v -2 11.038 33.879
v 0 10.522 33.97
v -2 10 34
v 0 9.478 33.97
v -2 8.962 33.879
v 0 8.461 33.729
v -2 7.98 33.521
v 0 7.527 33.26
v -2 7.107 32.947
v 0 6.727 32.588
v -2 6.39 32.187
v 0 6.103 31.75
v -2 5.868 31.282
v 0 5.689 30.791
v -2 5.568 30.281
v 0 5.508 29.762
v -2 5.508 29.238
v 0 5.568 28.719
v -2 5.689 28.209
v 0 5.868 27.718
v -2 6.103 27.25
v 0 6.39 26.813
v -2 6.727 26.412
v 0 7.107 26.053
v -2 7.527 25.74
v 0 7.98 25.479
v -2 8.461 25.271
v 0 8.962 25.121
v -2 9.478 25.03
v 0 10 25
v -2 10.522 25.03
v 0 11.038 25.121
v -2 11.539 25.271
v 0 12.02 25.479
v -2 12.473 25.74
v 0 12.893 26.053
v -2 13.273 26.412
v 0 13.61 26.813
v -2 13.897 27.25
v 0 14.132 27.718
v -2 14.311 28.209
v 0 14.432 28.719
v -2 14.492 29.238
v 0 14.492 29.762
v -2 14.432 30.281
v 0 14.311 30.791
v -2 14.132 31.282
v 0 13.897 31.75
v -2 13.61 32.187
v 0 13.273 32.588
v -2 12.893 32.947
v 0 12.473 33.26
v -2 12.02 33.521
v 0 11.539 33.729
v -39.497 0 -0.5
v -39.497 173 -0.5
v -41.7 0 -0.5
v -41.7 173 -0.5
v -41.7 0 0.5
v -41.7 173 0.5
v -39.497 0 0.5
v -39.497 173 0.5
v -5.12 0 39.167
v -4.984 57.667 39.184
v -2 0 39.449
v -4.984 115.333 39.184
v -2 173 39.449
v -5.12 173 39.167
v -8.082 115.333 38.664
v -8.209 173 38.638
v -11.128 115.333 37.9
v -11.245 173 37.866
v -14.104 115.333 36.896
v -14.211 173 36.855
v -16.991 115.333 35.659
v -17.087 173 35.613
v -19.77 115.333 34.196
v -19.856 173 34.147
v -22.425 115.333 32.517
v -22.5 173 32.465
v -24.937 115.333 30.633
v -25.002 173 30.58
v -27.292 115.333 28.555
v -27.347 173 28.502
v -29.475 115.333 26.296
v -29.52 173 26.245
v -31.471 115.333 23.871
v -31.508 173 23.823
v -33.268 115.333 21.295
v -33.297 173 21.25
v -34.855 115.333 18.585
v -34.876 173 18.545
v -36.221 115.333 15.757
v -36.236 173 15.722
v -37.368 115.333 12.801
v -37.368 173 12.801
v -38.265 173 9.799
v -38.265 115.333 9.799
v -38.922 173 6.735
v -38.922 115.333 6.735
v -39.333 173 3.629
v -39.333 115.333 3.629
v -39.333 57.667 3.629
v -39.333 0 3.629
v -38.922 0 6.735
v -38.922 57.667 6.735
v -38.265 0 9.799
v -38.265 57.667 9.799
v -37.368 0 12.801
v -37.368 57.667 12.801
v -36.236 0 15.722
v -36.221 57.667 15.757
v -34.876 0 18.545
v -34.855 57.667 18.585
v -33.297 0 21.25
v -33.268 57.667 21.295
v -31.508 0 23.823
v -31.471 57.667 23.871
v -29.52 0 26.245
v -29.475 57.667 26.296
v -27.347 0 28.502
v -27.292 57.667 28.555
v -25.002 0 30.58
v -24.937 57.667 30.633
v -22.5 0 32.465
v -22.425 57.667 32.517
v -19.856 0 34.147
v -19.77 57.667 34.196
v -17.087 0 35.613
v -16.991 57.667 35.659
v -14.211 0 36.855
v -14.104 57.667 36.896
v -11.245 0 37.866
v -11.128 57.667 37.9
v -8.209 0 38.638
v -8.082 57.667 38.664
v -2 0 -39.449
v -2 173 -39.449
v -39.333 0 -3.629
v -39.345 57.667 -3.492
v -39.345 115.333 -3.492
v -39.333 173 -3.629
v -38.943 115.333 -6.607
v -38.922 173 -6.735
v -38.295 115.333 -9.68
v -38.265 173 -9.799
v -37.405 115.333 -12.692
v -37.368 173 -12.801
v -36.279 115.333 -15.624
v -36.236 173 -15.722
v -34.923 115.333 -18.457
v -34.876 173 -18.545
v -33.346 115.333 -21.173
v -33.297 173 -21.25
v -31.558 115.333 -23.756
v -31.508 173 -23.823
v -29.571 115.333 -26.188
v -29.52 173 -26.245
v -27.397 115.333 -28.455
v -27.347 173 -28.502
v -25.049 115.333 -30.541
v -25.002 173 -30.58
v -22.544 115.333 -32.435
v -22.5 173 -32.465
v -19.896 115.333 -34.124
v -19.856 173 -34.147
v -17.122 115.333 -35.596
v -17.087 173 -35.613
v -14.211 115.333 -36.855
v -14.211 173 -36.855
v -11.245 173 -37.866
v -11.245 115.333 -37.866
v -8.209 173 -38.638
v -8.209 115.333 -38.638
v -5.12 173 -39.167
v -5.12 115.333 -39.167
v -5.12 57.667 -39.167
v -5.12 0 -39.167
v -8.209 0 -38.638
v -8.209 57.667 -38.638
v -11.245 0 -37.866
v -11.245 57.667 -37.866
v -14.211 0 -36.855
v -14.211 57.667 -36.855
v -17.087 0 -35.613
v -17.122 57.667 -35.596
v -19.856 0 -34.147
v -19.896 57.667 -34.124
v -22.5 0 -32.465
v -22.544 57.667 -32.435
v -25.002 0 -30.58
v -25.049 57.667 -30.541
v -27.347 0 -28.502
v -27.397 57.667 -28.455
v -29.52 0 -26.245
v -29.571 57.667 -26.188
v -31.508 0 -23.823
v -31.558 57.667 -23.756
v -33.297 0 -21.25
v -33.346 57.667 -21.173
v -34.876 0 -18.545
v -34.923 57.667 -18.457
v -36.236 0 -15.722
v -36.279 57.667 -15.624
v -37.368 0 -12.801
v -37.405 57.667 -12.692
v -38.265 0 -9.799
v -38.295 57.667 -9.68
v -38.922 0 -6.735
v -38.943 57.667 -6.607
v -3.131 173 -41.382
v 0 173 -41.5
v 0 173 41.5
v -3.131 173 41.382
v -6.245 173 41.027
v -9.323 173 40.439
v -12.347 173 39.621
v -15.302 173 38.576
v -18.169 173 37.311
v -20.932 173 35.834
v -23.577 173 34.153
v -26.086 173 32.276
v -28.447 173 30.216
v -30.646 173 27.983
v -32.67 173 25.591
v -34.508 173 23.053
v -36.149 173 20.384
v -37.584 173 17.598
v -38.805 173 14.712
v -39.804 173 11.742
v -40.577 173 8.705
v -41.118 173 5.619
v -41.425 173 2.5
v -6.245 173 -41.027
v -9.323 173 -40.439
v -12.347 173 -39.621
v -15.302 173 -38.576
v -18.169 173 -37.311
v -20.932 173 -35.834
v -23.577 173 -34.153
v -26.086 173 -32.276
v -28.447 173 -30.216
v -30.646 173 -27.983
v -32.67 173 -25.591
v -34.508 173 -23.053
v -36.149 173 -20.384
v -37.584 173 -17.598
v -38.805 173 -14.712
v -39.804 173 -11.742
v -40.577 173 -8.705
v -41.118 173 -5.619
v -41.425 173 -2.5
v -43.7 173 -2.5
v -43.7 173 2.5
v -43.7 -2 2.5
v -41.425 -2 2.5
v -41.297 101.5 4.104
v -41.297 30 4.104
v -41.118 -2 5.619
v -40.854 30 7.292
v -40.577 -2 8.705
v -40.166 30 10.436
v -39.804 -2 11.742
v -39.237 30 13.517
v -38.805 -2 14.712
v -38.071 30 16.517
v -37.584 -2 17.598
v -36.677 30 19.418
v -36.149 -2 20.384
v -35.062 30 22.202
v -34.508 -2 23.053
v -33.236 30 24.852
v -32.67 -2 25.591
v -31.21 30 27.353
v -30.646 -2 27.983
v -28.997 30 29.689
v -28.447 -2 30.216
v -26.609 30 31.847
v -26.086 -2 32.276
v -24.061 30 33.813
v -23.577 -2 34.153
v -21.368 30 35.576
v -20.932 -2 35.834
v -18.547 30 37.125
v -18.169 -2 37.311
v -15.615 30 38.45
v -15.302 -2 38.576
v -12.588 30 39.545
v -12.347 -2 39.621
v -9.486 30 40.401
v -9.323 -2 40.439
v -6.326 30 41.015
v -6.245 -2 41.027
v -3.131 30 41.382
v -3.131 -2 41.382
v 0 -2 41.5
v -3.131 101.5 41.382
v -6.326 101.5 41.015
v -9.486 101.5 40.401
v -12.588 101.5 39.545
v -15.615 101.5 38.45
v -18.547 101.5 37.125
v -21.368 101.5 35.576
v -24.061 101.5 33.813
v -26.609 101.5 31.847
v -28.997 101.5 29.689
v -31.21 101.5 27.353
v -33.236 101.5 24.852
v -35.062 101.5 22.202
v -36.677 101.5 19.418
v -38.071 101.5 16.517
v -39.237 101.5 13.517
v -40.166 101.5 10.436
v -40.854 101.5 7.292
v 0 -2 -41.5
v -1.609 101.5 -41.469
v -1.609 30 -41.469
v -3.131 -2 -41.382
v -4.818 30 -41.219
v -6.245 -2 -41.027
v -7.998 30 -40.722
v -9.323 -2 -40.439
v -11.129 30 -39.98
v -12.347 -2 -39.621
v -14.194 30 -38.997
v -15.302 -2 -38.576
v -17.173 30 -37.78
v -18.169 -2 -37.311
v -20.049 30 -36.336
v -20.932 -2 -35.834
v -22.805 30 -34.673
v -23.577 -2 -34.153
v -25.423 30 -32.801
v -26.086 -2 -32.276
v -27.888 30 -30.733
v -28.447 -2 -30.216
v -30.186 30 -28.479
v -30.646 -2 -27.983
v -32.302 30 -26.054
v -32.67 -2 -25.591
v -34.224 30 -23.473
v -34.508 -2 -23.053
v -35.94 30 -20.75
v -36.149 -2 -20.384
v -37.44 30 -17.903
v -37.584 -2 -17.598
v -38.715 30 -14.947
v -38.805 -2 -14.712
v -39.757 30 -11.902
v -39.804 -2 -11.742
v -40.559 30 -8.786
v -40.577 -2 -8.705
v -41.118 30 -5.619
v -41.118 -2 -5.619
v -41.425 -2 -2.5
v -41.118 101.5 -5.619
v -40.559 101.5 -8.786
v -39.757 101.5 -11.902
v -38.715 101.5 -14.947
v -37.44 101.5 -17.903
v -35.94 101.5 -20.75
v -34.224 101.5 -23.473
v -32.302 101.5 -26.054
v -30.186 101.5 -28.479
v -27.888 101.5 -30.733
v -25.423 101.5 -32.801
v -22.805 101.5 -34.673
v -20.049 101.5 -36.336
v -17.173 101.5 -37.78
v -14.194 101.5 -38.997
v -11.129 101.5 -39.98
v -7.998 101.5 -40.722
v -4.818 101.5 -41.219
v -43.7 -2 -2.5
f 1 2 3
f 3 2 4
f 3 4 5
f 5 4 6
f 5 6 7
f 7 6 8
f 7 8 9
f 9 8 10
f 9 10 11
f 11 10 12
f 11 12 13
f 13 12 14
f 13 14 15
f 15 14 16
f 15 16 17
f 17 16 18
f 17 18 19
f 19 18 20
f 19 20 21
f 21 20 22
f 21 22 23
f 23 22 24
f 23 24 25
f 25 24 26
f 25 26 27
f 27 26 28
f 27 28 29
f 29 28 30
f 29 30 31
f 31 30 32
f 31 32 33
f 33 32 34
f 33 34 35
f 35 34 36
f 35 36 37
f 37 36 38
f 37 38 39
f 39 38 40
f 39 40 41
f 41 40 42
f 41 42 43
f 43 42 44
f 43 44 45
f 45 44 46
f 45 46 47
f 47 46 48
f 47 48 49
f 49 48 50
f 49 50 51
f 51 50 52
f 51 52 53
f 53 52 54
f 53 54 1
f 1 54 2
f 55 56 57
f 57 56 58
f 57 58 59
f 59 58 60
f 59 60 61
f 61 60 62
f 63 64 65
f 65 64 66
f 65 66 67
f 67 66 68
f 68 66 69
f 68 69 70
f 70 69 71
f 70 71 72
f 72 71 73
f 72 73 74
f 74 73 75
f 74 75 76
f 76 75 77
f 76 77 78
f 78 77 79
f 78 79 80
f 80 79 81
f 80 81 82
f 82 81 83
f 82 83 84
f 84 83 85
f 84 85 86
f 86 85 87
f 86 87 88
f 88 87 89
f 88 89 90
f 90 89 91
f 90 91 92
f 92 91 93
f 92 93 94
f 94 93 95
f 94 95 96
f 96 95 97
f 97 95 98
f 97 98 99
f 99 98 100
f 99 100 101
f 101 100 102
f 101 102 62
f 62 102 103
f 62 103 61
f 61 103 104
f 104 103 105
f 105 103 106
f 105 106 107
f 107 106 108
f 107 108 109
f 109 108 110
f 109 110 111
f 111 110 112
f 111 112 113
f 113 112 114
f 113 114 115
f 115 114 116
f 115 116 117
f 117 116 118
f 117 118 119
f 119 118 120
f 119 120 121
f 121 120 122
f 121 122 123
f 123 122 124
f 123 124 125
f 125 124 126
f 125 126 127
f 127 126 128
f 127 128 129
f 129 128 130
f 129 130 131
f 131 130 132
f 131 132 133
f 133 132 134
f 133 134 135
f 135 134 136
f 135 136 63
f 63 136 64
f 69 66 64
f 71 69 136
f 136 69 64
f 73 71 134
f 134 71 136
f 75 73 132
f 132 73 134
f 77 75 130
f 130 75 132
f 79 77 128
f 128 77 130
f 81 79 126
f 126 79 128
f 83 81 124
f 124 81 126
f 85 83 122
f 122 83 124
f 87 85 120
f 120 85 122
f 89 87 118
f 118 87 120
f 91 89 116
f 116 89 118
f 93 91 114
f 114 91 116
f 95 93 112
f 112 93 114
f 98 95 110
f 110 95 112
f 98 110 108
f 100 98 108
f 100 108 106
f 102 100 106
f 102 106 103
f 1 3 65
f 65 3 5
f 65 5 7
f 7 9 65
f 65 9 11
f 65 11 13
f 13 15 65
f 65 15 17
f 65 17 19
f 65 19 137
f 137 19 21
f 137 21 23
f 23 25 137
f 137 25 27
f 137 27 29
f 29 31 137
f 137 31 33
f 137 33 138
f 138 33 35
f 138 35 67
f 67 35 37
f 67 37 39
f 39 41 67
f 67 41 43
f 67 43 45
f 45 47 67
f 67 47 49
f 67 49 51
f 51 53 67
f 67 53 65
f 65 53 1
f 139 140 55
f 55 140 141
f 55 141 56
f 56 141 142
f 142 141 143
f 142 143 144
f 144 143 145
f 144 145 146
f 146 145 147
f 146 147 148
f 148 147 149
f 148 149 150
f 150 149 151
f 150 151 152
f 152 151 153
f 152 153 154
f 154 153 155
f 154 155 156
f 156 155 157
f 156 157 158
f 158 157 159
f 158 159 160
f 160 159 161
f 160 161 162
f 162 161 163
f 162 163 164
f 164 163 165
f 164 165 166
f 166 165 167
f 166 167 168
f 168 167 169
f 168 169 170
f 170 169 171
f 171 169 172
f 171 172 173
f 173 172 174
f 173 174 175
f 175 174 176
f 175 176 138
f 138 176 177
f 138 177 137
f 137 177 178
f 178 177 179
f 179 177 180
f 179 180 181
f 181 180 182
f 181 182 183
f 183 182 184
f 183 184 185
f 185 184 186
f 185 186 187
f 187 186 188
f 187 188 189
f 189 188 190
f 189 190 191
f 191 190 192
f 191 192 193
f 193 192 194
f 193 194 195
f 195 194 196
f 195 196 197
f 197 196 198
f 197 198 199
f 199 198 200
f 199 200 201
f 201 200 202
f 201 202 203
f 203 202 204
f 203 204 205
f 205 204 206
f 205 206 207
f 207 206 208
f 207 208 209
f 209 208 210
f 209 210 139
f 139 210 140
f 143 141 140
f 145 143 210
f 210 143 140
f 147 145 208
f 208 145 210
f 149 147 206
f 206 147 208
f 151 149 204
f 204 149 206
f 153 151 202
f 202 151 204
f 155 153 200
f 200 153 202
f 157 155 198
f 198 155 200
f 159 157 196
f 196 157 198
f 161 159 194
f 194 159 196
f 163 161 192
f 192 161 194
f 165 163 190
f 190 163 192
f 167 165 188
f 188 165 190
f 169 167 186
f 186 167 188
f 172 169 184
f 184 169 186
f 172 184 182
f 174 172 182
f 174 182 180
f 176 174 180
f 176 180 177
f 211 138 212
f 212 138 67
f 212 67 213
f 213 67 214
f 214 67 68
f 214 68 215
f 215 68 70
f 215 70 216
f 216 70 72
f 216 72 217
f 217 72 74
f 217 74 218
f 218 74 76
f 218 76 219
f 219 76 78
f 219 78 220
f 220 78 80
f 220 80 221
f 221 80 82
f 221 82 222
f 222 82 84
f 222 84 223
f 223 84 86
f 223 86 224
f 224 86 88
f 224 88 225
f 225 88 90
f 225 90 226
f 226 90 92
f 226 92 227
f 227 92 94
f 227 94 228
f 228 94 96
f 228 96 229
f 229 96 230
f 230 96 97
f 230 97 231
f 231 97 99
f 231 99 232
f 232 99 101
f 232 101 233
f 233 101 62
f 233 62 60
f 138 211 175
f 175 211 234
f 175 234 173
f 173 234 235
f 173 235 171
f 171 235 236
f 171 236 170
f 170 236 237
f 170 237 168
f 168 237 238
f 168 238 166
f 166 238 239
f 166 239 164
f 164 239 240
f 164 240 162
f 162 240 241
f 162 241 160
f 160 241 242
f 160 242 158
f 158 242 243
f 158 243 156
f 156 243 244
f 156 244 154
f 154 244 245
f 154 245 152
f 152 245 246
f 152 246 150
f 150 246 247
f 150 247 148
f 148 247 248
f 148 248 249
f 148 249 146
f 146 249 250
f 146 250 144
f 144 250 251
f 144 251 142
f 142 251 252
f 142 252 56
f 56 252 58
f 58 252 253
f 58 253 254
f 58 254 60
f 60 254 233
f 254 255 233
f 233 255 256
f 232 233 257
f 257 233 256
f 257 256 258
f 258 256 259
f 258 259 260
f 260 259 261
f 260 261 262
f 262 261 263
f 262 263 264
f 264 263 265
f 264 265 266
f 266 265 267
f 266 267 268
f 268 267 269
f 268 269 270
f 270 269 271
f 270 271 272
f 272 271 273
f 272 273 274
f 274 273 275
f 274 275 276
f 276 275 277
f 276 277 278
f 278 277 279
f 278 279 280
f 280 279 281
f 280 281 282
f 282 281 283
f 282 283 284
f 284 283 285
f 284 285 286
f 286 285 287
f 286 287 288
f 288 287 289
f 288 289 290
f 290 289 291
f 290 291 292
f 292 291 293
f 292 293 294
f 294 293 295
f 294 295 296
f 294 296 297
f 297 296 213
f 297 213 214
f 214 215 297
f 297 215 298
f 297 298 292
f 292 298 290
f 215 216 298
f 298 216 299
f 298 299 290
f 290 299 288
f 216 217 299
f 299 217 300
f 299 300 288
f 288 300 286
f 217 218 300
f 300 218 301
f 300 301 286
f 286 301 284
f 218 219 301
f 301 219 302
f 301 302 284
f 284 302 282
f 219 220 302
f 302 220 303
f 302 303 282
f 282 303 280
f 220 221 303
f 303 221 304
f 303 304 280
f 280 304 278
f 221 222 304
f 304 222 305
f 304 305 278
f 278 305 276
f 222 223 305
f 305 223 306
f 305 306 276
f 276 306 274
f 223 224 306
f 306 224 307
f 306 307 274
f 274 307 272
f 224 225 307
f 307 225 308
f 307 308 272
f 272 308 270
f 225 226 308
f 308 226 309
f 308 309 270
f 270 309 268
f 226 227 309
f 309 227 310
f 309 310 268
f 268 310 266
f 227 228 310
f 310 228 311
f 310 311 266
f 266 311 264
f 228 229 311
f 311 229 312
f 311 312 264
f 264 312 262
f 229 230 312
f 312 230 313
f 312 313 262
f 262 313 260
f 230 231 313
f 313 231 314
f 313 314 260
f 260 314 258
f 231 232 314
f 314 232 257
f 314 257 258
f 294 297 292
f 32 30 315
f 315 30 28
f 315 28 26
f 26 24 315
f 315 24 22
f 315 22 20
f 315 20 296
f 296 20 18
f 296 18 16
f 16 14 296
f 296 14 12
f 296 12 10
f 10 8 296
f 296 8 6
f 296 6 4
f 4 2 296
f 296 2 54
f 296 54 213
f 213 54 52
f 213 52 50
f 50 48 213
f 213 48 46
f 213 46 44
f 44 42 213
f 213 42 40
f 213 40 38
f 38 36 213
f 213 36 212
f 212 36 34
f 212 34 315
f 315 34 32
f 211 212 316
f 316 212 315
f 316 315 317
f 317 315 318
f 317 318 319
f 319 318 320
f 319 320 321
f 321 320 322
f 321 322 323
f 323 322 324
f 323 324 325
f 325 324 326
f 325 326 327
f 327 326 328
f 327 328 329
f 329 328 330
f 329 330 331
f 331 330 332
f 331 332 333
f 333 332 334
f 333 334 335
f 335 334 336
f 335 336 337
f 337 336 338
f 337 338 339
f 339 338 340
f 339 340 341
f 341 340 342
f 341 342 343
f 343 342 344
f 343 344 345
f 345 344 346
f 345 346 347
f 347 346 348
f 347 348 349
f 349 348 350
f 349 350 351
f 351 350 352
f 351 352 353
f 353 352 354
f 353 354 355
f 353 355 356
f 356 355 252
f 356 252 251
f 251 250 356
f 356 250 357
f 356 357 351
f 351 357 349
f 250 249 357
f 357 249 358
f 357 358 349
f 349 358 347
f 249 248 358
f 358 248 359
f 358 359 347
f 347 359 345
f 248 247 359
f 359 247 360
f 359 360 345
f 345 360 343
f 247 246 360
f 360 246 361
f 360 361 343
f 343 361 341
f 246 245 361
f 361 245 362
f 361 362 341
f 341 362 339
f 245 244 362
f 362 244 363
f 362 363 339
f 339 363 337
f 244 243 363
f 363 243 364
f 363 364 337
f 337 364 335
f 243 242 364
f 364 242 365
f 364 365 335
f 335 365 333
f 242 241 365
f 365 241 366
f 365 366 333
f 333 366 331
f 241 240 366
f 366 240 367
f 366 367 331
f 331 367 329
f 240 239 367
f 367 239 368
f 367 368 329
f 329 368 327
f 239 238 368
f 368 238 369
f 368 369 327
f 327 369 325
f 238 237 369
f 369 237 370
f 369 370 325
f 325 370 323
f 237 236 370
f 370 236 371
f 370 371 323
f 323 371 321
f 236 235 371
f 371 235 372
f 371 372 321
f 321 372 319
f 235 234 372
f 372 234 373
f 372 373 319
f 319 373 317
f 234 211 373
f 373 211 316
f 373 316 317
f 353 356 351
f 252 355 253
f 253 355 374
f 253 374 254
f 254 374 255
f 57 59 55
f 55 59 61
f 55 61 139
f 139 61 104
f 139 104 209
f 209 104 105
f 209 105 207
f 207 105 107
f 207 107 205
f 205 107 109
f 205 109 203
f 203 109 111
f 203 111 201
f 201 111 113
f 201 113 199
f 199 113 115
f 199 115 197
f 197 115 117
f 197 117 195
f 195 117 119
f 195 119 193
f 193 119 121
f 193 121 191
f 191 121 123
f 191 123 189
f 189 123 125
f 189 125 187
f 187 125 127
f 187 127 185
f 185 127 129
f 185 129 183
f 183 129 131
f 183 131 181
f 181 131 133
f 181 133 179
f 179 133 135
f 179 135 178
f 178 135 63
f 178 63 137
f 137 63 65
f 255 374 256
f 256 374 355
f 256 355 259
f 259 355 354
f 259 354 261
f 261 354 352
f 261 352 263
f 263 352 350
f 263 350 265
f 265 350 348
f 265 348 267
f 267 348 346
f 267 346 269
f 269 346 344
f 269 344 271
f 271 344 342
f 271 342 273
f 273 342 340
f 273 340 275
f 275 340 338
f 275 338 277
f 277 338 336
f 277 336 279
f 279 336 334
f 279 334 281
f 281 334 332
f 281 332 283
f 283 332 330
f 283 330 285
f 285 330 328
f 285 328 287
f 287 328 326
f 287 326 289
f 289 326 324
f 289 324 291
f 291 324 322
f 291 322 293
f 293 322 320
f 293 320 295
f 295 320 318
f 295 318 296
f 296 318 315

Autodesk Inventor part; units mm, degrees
ref_plane "YZ Plane" through (0, 0, 0) normal (1, 0, 0) x (0, 1, 0)
ref_plane "XZ Plane" through (0, 0, 0) normal (0, 1, 0) x (-1, 0, 0)
ref_plane "XY Plane" through (0, 0, 0) normal (0, 0, 1) x (1, 0, 0)
sketch "Sketch1" plane through (0, 0, 0) normal (0, 1, 0) x (-1, 0, 0)
  arc A0 (41.4246, 2.5) -> (41.4246, -2.5) centre (0, 0) ccw construction
  line L0 (0, -41.5) -> (0, 41.5)
  line L1 (0, 0) -> (41.5, 0) construction
  line L2 (41.4246, 2.5) -> (43.7, 2.5)
  line L3 (43.7, 2.5) -> (43.7, -2.5)
  line L4 (43.7, -2.5) -> (41.4246, -2.5)
  line L5 (39.3, 2.5) -> (43.7, -2.5) construction
  line L6 (43.7, 2.5) -> (39.3, -2.5) construction
  arc A1 (0, -41.5) -> (41.4246, -2.5) centre (0, 0) ccw
  arc A2 (41.4246, 2.5) -> (0, 41.5) centre (0, 0) ccw
  line L7 (41.4246, -2.5) -> (41.4246, 2.5) construction
  line L8 (2, 39.4493) -> (2, -39.4493)
  arc A3 (2, -39.4493) -> (39.4968, -0.5) centre (0, 0) ccw
  line L9 (39.4968, -0.5) -> (41.7, -0.5)
  line L10 (41.7, -0.5) -> (41.7, 0.5)
  line L11 (41.7, 0.5) -> (39.4968, 0.5)
  arc A4 (39.4968, 0.5) -> (2, 39.4493) centre (0, 0) ccw
  dimension "d0" = 83
  dimension "d1" = 83
  dimension "d2" = 5
  dimension "d4" = 2.2
  dimension "d5" = 41.5
  dimension "d6" = 2
extrude "Extrusion1" add sketch "Sketch1" against normal blind 2 contours L0 A2 L2 L3 L4 A1 | A4 L11 L10 L9 A3 L8
extrude "Extrusion2" add sketch "Sketch1" along normal blind 173
sketch "Sketch2" plane through (0, -2, 41.5) normal (1, 0, 0) x (0, 0, -1)
  circle A0 centre (12, 12) radius 4.5
  line L0 (83, 0) -> (0, 0) projected
  line L1 (0, 0) -> (0, 175) projected
  point P0 (41.5, 2)
  dimension "d11" = 9
  dimension "d12" = 12
  dimension "d13" = 12
extrude "Extrusion3" cut sketch "Sketch2" against normal blind 10
properties part number "_3DPrint"
